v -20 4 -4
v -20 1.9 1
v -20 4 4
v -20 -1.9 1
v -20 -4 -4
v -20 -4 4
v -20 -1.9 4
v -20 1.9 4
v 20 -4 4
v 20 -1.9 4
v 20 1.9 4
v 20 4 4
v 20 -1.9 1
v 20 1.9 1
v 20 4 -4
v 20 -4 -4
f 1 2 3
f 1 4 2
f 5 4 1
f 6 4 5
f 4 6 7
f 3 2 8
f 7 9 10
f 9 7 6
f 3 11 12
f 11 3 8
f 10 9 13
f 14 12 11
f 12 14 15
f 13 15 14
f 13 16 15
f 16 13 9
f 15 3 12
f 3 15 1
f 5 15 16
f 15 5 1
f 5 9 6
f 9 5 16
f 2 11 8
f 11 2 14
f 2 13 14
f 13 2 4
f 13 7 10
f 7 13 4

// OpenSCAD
difference() {
    cube([40,8,8],center=true);
    translate([0,0,5]) cube([51,3.8,8],center=true);
}
